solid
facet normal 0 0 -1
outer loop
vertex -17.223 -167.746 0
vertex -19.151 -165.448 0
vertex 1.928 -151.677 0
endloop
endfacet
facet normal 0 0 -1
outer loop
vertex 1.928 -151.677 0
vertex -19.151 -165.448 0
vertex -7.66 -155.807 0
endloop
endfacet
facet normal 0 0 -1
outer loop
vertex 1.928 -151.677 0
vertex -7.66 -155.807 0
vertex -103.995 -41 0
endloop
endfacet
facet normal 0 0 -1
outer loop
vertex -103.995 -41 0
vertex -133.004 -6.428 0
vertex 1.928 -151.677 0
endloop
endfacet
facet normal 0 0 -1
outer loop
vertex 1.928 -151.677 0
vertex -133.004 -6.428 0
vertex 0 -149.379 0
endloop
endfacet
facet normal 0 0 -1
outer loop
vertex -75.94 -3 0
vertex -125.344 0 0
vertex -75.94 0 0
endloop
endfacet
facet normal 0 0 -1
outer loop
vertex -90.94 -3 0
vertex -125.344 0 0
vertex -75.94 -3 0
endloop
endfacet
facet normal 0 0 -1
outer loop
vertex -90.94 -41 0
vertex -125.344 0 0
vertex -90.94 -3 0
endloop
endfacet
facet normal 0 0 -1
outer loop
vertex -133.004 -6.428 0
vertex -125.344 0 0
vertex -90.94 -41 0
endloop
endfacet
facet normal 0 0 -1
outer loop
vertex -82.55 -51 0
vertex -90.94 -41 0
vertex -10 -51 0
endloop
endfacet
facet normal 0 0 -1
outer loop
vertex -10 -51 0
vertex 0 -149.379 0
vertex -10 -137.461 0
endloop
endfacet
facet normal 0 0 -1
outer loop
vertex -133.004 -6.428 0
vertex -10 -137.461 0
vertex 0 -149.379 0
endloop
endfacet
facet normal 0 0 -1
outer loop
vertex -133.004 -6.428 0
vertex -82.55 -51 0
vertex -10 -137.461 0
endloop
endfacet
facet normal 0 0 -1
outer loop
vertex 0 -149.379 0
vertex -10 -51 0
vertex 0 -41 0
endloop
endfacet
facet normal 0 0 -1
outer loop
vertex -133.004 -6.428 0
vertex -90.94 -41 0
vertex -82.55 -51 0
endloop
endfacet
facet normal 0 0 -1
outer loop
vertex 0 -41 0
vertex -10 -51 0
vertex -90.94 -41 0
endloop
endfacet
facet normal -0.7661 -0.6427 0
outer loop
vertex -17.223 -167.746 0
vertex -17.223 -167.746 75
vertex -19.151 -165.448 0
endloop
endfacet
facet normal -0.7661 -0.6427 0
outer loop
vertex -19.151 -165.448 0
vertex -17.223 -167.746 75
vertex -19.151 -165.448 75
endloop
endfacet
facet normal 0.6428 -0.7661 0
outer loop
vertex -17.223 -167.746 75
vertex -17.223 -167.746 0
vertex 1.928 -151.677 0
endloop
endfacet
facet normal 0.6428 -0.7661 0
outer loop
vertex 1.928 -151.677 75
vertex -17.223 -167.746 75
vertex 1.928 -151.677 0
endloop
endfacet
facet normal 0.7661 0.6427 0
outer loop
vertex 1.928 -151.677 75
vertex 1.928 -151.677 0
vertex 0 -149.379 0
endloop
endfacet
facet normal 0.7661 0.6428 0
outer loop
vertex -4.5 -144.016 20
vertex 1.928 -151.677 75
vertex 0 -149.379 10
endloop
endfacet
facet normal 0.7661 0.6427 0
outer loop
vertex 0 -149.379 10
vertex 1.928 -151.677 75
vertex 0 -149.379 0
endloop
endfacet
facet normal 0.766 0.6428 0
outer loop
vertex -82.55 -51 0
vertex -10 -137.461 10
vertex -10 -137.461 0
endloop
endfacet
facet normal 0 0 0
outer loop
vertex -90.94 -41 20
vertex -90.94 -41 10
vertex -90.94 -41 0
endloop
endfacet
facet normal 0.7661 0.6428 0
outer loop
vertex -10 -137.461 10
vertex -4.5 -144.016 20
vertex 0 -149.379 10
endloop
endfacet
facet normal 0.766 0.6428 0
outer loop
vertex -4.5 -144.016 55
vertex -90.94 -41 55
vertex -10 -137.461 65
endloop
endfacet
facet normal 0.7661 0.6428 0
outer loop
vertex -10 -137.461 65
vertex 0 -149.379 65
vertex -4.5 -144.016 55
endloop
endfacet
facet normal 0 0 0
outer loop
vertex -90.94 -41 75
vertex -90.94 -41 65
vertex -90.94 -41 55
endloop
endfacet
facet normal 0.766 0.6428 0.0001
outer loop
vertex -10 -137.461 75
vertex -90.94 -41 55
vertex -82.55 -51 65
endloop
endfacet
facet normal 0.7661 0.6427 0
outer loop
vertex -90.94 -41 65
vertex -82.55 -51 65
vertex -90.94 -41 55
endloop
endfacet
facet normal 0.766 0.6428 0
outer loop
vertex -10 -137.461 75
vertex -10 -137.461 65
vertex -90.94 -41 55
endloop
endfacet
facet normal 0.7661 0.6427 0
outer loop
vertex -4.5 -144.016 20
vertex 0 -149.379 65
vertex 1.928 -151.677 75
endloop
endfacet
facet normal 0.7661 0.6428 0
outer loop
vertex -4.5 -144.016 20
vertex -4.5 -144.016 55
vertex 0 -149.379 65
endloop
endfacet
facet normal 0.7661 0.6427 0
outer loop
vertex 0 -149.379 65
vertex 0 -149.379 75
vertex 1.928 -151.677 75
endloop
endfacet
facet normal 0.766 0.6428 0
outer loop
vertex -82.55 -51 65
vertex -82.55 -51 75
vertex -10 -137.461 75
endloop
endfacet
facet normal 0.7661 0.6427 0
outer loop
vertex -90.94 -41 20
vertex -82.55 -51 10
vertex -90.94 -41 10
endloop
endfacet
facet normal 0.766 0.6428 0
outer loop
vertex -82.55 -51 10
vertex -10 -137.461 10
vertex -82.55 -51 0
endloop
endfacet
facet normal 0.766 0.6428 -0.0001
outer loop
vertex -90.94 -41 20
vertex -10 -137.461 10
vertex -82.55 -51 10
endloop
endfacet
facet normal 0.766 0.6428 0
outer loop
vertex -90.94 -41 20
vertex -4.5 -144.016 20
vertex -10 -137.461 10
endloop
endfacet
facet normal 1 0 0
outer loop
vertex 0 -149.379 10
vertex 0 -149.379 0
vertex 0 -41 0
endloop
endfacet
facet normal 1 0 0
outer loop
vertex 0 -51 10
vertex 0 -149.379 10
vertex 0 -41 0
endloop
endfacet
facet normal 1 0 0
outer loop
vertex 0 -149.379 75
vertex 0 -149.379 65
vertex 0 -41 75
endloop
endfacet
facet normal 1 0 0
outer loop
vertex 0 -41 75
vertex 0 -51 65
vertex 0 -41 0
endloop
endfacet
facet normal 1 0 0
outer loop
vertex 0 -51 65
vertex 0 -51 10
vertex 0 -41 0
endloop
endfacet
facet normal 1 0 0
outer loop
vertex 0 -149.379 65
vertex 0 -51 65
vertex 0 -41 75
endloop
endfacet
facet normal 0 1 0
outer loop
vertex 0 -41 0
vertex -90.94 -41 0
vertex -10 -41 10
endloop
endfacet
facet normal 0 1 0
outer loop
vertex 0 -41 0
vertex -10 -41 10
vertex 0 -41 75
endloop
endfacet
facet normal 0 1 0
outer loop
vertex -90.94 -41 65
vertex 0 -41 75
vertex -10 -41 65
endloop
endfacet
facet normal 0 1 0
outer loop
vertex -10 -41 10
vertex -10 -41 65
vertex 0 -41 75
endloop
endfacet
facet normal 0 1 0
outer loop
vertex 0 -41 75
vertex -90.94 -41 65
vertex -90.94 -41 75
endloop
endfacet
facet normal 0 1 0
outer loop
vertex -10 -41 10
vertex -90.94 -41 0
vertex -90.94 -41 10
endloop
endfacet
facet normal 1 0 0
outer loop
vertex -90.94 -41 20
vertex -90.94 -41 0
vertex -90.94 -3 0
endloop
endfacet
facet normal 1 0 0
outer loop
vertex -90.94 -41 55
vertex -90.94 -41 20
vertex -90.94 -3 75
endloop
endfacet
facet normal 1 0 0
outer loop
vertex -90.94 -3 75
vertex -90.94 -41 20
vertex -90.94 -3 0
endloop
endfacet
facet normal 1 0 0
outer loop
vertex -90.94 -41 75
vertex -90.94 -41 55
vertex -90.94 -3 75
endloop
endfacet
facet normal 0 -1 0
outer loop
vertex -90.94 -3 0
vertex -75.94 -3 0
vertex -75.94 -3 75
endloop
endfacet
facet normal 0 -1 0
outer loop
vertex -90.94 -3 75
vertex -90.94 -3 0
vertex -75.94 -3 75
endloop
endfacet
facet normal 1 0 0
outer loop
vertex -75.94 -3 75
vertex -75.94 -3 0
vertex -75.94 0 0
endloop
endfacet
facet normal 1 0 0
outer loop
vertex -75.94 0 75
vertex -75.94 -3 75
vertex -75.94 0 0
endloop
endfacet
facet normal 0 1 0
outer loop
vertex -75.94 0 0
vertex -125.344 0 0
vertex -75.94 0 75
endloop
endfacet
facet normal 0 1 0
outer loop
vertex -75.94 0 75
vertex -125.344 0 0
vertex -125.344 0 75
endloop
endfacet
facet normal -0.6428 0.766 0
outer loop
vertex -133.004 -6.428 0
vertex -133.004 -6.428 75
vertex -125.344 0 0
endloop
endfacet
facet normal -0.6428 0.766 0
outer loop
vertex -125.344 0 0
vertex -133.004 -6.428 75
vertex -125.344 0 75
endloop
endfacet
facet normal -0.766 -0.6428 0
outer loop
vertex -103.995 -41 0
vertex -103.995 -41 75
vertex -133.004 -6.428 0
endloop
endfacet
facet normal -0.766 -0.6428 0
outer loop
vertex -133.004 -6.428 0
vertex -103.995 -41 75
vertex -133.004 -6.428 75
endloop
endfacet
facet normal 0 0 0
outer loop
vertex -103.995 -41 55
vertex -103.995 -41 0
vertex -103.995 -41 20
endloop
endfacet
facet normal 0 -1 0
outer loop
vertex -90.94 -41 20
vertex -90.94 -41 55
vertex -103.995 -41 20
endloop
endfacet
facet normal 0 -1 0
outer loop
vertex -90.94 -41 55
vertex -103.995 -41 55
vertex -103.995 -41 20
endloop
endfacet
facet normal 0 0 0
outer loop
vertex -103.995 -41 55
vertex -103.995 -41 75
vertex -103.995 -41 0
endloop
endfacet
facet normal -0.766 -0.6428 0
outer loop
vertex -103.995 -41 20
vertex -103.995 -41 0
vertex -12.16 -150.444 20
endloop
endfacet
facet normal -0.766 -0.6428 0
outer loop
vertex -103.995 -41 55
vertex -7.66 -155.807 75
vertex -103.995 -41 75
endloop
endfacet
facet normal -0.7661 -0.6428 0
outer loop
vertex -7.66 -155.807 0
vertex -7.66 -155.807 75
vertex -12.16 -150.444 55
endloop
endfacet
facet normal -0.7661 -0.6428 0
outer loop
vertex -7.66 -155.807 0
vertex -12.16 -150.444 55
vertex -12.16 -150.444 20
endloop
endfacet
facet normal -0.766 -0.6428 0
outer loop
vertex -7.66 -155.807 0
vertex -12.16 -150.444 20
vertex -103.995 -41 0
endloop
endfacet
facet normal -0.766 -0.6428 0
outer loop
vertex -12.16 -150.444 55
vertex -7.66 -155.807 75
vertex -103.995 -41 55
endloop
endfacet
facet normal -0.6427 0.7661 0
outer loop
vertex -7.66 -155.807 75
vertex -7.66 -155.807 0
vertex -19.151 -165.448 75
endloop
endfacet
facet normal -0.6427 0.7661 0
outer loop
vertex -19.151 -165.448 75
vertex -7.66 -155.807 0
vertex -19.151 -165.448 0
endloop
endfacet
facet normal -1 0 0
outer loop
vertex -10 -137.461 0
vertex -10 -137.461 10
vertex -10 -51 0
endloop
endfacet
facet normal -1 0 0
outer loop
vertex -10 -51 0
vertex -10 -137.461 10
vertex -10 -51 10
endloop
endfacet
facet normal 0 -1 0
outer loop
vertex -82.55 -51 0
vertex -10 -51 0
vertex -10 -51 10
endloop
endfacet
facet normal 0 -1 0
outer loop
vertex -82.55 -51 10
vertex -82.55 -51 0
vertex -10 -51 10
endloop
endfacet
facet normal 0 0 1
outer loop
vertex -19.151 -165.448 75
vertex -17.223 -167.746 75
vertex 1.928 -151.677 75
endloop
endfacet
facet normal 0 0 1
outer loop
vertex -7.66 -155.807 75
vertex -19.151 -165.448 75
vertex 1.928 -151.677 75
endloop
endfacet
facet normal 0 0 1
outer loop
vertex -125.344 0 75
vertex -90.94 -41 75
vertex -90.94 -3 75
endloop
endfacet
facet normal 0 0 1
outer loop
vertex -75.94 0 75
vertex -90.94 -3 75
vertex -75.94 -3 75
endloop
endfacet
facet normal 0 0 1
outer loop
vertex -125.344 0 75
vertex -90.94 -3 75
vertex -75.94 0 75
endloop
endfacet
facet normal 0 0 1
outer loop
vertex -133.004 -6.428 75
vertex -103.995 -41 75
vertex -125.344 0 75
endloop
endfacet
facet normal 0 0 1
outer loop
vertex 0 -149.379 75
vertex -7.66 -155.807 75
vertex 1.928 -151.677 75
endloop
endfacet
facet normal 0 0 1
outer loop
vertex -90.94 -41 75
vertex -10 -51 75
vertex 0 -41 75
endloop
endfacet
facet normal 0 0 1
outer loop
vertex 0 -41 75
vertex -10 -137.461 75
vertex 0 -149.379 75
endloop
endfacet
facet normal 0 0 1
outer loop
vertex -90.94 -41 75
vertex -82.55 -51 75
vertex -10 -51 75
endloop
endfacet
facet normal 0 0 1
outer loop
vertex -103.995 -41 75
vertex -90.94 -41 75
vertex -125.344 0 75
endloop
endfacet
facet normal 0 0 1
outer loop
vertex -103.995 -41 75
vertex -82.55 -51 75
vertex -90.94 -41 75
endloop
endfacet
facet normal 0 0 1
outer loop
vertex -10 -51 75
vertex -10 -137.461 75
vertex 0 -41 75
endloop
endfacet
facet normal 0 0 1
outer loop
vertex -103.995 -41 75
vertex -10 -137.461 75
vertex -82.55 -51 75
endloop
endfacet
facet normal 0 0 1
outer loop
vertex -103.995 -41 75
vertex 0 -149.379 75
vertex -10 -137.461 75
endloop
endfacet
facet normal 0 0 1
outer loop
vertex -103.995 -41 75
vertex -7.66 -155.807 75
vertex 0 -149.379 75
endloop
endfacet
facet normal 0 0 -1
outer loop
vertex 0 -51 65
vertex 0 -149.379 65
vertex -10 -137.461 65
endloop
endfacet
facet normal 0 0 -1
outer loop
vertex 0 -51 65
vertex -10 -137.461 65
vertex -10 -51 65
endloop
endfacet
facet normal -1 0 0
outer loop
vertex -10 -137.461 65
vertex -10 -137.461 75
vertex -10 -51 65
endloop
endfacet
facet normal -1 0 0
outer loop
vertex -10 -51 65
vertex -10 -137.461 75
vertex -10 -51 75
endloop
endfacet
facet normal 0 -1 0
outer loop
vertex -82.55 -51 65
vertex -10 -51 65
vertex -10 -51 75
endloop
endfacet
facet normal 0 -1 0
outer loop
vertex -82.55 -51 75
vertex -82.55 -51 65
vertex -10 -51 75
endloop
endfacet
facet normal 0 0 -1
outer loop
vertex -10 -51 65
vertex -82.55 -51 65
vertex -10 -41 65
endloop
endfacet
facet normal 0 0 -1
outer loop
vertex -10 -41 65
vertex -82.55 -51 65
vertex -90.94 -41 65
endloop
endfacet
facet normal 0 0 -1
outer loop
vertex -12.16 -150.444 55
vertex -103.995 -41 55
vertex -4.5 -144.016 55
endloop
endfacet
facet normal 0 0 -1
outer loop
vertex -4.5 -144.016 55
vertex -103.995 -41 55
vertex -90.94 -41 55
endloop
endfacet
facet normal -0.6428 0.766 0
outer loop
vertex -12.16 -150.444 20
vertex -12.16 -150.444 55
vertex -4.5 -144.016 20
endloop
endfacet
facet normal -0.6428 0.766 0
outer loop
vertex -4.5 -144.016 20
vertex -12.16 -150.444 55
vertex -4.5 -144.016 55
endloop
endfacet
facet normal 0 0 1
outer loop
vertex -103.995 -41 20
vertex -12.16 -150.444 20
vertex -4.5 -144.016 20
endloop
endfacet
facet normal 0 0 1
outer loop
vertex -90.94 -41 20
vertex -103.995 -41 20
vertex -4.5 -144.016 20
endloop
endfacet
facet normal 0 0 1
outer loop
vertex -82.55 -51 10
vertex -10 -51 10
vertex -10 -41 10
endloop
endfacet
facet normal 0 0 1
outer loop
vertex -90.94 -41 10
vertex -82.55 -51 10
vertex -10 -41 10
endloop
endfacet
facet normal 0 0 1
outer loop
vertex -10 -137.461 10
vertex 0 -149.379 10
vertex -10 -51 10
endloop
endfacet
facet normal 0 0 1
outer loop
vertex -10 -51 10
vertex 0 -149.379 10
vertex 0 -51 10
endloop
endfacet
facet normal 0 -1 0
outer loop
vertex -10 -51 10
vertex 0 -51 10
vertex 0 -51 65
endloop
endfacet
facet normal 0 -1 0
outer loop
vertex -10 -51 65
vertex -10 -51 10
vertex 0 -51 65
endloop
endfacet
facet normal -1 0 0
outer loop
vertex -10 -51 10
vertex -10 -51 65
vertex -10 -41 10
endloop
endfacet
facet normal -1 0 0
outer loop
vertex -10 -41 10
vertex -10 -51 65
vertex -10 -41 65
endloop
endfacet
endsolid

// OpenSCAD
// Edge-hanging laptop mount
// by Dale Price
// https://github.com/daprice/CAD & http://www.thingiverse.com/daprice/

/* [Laptop Mounting] */

// depth of laptop stand surface (mm)
depth = 195;
// width of laptop arms (mm)
arm_width = 20;
// size of laptop holding lip
lip = 25;
// thickness of laptop holding lip
lip_thickness = 3;

/* [Structure] */

// angle from wall (degrees)
angle = 50;
// width of stand (mm) (max Z dimension when printing)
width = 75;
// support thickness (mm)
thickness = 10;

arm_spacing = width - arm_width;
rotated_depth = sin(angle) * depth;
rotated_height = cos(angle) * depth;

/* [Edge Attachment] */

// hook depth (mm) (i.e. thickness of wall/fence to be mounted on)
hook_depth = 38;
// vertical size of hook (mm)
hook_vert = 15;
// hook thickness (mm)
hook_thickness = 3;

hook_outer_depth = hook_depth + hook_thickness;


wall_support_pos = -hook_depth-hook_thickness;
wall_support_height = rotated_height-((hook_depth+hook_thickness)/tan(angle));
structural_support_length = tan(angle)*wall_support_height;

rotate([0, -90, 0])
union() {
	translate( [0, 0, rotated_height] )
	rotate( [90-angle, 0, 0] )
	union() {
		for (arm = [0, arm_spacing]) {
			translate( [arm, -depth, 0])
			//arms
			cube( [arm_width, depth, thickness], center = false );
		}
		
		//rear support and hook
		hull() { //should be hull
			//support
			translate([0,-thickness,0])cube( [arm_spacing+arm_width, thickness, thickness], center=false );
			//hook surface
			rotate([-90+angle,0,0])translate([0,-hook_depth-hook_thickness,-(tan(90-angle)*(hook_depth+hook_thickness))])cube( [arm_spacing+arm_width, hook_depth+hook_thickness, thickness/sin(angle)], center=false );
		}
	
		//hooky part of hook
		rotate([-90+angle,0,0])translate([0,-hook_thickness,-(tan(90-angle)*(hook_depth+hook_thickness))-hook_vert])cube( [arm_spacing+arm_width, hook_thickness, hook_vert], center=false );
	
		//front support
		translate([arm_width,-depth-lip_thickness,0])cube( [arm_spacing-arm_width, thickness, thickness], center=false );
	
		//laptop holding lips
		translate([0,-lip_thickness-depth,0])cube( [arm_spacing+arm_width, lip_thickness, lip], center = false);
	}
	
	//wall supports
	for(arm = [0, arm_spacing+(arm_width-thickness)]) {
		translate([arm, wall_support_pos-thickness, 0])
		cube( [thickness, thickness, wall_support_height], center=false );
	}
	
	//in between wall supports
	translate([thickness, wall_support_pos-thickness, 0])
	cube( [width-2*thickness, thickness, thickness], center=false );
	
	//structural supports
	for(arm = [0, arm_spacing+(arm_width-thickness)]) {
		translate([arm, wall_support_pos-structural_support_length, 0])
		cube( [thickness, structural_support_length, thickness], center=false );
	}
}
